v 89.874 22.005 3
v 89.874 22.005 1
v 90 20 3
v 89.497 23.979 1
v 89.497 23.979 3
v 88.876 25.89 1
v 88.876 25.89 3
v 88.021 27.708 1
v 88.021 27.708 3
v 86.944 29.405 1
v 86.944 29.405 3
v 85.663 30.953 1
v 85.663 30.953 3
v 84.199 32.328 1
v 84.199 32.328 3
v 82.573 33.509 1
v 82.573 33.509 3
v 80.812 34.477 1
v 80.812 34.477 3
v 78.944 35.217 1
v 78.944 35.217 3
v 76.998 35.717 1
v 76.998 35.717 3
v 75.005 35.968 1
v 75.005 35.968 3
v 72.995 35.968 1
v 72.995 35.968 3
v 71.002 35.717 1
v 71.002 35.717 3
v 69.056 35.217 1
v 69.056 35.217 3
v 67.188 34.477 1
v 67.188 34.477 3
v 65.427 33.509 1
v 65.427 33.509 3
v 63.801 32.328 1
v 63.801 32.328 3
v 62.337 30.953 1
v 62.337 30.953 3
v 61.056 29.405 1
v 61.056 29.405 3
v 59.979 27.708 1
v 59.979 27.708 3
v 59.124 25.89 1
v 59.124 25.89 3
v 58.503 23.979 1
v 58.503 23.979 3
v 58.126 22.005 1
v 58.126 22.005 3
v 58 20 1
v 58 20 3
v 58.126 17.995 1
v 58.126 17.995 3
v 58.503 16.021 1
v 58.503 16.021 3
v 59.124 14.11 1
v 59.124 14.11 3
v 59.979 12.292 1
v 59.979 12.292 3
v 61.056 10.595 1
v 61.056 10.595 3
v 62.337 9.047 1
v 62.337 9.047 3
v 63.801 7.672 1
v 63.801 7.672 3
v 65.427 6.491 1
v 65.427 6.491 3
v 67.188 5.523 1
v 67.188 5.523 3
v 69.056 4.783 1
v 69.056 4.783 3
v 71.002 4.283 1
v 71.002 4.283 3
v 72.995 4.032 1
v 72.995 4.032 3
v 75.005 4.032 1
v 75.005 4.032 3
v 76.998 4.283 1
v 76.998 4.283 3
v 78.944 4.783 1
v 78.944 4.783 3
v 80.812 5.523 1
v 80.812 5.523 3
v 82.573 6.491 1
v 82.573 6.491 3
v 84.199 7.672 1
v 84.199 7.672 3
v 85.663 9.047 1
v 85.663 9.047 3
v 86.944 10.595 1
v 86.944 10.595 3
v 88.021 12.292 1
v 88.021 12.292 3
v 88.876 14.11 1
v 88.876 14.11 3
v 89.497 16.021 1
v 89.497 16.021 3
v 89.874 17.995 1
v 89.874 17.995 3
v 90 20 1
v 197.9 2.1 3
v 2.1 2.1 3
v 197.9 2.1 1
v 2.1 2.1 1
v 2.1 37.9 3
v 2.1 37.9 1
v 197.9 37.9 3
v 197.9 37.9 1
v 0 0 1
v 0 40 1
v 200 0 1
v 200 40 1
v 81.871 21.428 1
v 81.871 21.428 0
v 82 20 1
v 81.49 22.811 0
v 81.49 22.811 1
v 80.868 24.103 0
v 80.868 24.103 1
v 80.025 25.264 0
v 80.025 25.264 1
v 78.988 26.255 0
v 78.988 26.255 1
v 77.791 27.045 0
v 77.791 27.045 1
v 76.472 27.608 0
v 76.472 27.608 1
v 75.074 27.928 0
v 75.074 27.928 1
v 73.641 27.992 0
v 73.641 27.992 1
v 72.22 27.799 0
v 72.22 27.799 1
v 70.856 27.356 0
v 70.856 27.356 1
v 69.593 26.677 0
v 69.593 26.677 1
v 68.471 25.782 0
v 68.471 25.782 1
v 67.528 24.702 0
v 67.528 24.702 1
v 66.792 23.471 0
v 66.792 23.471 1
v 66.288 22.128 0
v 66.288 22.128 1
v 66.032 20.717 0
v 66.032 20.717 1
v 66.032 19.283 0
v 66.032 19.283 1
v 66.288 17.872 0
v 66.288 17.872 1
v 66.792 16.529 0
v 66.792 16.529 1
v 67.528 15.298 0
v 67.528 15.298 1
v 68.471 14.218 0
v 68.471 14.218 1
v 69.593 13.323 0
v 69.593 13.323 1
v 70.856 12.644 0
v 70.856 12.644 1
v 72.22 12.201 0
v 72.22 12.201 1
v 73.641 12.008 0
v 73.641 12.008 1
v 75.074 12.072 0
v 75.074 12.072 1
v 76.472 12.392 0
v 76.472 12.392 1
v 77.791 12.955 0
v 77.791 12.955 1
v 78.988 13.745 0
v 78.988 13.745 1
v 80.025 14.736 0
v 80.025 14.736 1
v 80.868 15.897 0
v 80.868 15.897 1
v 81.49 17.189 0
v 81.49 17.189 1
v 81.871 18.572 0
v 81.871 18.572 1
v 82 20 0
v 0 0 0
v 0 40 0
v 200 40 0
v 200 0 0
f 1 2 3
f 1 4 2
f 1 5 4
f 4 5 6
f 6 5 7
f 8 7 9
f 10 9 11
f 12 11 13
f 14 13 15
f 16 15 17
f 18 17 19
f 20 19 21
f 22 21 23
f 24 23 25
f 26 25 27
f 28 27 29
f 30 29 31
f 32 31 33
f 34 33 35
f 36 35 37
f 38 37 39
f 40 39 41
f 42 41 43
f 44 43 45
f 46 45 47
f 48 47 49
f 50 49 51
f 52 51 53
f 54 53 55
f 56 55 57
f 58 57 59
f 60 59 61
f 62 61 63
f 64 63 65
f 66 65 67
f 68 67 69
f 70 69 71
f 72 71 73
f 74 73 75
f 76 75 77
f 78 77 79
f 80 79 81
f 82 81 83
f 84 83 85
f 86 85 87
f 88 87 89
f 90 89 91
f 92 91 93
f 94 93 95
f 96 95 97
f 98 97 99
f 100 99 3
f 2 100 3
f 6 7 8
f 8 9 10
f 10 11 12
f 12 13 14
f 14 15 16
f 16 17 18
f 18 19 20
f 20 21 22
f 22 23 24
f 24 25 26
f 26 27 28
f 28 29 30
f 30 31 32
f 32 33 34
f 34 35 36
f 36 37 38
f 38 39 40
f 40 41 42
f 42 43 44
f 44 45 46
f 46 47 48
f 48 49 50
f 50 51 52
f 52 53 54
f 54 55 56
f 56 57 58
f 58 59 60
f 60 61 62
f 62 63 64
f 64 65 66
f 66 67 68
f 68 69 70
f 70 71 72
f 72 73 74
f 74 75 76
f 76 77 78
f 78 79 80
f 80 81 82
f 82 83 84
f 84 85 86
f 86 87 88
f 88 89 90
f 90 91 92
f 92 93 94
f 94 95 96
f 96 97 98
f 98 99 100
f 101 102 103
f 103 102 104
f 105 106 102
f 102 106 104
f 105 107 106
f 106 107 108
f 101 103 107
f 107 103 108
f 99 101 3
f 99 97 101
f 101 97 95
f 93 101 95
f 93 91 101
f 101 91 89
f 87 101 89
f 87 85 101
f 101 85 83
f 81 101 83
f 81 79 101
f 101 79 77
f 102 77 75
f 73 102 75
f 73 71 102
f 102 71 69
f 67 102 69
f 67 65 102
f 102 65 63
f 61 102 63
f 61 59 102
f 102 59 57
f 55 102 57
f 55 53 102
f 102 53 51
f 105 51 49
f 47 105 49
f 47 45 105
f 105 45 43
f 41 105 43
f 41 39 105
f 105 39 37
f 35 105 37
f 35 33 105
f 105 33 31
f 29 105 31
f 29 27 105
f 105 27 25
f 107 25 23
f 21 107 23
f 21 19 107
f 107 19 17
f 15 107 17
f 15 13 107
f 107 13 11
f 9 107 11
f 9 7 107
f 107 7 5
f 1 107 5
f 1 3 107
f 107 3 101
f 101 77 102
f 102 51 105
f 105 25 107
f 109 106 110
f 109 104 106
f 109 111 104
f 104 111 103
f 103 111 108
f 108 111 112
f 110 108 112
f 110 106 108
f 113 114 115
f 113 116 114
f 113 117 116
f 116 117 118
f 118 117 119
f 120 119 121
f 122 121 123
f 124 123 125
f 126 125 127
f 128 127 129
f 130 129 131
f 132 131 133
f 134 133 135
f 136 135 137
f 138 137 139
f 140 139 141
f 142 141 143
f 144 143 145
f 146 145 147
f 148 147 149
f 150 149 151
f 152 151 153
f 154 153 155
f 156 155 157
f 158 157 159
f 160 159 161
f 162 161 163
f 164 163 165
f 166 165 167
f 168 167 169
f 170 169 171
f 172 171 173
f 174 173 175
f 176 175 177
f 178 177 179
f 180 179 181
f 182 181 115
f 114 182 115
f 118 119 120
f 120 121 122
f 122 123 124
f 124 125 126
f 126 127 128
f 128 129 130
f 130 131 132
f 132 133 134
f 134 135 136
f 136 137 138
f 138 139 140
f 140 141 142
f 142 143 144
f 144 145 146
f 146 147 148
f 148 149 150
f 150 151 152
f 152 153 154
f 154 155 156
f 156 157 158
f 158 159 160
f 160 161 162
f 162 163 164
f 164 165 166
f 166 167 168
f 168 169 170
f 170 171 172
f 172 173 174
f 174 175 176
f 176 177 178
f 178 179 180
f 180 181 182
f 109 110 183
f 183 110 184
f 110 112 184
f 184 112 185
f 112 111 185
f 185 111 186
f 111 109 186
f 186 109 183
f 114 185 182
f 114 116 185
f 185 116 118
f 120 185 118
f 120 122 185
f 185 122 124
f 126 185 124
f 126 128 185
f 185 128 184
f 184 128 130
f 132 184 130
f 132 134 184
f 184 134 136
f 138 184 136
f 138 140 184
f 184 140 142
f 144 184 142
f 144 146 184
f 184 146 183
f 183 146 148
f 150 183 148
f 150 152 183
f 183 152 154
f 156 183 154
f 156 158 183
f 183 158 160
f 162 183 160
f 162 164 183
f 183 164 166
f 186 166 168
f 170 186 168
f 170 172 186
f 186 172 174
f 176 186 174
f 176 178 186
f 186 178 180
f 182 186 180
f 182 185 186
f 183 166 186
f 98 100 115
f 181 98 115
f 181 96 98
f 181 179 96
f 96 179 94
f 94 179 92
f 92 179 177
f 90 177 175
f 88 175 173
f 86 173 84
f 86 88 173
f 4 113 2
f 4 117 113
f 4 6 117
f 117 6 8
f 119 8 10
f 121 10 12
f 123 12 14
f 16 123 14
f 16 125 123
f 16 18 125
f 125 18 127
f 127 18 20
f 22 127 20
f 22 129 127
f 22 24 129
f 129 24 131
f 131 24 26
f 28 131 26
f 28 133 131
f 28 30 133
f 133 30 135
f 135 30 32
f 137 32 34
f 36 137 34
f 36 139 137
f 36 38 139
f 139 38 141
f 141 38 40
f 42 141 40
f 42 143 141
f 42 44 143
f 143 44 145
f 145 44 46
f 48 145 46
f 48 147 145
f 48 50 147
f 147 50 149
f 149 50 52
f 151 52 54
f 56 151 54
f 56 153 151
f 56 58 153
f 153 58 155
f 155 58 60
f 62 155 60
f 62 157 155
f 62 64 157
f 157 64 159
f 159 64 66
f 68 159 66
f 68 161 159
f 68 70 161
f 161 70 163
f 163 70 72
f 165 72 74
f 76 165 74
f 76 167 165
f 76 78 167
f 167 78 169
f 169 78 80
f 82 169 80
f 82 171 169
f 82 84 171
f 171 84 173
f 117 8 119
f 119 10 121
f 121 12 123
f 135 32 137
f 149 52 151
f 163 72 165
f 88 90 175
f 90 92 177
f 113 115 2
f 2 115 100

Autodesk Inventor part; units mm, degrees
ref_plane "YZ Plane" through (0, 0, 0) normal (1, 0, 0) x (0, 1, 0)
ref_plane "XZ Plane" through (0, 0, 0) normal (0, 1, 0) x (-1, 0, 0)
ref_plane "XY Plane" through (0, 0, 0) normal (0, 0, 1) x (1, 0, 0)
sketch "Boceto1" plane through (0, 0, 0) normal (0, 0, 1) x (1, 0, 0)
  line L0 (0, 0) -> (200, 0)
  line L1 (200, 0) -> (200, 40)
  line L2 (200, 40) -> (0, 40)
  line L3 (0, 40) -> (0, 0)
  circle A0 centre (74, 20) radius 8
  dimension "d0" = 200
  dimension "d1" = 40
  dimension "d2" = 16
  dimension "d3" = 74
  dimension "d4" = 20
extrude "Extrusión1" add sketch "Boceto1" along normal blind 1
sketch "Boceto2" plane through (0, 0, 1) normal (0, 0, 1) x (1, 0, 0)
  circle A0 centre (74, 20) radius 8 projected
  line L0 (0, 0) -> (0, 40) projected
  line L1 (200, 0) -> (0, 0) projected
  line L2 (200, 40) -> (200, 0) projected
  line L3 (0, 40) -> (200, 40) projected
  line L4 (197.9, 37.9) -> (197.9, 2.1)
  line L5 (197.9, 2.1) -> (2.1, 2.1)
  line L6 (2.1, 2.1) -> (2.1, 37.9)
  line L7 (2.1, 37.9) -> (197.9, 37.9)
  circle A1 centre (74, 20) radius 16
  dimension "d7" = 2.1
  dimension "d8" = 32
extrude "Extrusión2" add sketch "Boceto2" along normal blind 2 contours L4 L5 L6 L7
properties part number "Tapa"
